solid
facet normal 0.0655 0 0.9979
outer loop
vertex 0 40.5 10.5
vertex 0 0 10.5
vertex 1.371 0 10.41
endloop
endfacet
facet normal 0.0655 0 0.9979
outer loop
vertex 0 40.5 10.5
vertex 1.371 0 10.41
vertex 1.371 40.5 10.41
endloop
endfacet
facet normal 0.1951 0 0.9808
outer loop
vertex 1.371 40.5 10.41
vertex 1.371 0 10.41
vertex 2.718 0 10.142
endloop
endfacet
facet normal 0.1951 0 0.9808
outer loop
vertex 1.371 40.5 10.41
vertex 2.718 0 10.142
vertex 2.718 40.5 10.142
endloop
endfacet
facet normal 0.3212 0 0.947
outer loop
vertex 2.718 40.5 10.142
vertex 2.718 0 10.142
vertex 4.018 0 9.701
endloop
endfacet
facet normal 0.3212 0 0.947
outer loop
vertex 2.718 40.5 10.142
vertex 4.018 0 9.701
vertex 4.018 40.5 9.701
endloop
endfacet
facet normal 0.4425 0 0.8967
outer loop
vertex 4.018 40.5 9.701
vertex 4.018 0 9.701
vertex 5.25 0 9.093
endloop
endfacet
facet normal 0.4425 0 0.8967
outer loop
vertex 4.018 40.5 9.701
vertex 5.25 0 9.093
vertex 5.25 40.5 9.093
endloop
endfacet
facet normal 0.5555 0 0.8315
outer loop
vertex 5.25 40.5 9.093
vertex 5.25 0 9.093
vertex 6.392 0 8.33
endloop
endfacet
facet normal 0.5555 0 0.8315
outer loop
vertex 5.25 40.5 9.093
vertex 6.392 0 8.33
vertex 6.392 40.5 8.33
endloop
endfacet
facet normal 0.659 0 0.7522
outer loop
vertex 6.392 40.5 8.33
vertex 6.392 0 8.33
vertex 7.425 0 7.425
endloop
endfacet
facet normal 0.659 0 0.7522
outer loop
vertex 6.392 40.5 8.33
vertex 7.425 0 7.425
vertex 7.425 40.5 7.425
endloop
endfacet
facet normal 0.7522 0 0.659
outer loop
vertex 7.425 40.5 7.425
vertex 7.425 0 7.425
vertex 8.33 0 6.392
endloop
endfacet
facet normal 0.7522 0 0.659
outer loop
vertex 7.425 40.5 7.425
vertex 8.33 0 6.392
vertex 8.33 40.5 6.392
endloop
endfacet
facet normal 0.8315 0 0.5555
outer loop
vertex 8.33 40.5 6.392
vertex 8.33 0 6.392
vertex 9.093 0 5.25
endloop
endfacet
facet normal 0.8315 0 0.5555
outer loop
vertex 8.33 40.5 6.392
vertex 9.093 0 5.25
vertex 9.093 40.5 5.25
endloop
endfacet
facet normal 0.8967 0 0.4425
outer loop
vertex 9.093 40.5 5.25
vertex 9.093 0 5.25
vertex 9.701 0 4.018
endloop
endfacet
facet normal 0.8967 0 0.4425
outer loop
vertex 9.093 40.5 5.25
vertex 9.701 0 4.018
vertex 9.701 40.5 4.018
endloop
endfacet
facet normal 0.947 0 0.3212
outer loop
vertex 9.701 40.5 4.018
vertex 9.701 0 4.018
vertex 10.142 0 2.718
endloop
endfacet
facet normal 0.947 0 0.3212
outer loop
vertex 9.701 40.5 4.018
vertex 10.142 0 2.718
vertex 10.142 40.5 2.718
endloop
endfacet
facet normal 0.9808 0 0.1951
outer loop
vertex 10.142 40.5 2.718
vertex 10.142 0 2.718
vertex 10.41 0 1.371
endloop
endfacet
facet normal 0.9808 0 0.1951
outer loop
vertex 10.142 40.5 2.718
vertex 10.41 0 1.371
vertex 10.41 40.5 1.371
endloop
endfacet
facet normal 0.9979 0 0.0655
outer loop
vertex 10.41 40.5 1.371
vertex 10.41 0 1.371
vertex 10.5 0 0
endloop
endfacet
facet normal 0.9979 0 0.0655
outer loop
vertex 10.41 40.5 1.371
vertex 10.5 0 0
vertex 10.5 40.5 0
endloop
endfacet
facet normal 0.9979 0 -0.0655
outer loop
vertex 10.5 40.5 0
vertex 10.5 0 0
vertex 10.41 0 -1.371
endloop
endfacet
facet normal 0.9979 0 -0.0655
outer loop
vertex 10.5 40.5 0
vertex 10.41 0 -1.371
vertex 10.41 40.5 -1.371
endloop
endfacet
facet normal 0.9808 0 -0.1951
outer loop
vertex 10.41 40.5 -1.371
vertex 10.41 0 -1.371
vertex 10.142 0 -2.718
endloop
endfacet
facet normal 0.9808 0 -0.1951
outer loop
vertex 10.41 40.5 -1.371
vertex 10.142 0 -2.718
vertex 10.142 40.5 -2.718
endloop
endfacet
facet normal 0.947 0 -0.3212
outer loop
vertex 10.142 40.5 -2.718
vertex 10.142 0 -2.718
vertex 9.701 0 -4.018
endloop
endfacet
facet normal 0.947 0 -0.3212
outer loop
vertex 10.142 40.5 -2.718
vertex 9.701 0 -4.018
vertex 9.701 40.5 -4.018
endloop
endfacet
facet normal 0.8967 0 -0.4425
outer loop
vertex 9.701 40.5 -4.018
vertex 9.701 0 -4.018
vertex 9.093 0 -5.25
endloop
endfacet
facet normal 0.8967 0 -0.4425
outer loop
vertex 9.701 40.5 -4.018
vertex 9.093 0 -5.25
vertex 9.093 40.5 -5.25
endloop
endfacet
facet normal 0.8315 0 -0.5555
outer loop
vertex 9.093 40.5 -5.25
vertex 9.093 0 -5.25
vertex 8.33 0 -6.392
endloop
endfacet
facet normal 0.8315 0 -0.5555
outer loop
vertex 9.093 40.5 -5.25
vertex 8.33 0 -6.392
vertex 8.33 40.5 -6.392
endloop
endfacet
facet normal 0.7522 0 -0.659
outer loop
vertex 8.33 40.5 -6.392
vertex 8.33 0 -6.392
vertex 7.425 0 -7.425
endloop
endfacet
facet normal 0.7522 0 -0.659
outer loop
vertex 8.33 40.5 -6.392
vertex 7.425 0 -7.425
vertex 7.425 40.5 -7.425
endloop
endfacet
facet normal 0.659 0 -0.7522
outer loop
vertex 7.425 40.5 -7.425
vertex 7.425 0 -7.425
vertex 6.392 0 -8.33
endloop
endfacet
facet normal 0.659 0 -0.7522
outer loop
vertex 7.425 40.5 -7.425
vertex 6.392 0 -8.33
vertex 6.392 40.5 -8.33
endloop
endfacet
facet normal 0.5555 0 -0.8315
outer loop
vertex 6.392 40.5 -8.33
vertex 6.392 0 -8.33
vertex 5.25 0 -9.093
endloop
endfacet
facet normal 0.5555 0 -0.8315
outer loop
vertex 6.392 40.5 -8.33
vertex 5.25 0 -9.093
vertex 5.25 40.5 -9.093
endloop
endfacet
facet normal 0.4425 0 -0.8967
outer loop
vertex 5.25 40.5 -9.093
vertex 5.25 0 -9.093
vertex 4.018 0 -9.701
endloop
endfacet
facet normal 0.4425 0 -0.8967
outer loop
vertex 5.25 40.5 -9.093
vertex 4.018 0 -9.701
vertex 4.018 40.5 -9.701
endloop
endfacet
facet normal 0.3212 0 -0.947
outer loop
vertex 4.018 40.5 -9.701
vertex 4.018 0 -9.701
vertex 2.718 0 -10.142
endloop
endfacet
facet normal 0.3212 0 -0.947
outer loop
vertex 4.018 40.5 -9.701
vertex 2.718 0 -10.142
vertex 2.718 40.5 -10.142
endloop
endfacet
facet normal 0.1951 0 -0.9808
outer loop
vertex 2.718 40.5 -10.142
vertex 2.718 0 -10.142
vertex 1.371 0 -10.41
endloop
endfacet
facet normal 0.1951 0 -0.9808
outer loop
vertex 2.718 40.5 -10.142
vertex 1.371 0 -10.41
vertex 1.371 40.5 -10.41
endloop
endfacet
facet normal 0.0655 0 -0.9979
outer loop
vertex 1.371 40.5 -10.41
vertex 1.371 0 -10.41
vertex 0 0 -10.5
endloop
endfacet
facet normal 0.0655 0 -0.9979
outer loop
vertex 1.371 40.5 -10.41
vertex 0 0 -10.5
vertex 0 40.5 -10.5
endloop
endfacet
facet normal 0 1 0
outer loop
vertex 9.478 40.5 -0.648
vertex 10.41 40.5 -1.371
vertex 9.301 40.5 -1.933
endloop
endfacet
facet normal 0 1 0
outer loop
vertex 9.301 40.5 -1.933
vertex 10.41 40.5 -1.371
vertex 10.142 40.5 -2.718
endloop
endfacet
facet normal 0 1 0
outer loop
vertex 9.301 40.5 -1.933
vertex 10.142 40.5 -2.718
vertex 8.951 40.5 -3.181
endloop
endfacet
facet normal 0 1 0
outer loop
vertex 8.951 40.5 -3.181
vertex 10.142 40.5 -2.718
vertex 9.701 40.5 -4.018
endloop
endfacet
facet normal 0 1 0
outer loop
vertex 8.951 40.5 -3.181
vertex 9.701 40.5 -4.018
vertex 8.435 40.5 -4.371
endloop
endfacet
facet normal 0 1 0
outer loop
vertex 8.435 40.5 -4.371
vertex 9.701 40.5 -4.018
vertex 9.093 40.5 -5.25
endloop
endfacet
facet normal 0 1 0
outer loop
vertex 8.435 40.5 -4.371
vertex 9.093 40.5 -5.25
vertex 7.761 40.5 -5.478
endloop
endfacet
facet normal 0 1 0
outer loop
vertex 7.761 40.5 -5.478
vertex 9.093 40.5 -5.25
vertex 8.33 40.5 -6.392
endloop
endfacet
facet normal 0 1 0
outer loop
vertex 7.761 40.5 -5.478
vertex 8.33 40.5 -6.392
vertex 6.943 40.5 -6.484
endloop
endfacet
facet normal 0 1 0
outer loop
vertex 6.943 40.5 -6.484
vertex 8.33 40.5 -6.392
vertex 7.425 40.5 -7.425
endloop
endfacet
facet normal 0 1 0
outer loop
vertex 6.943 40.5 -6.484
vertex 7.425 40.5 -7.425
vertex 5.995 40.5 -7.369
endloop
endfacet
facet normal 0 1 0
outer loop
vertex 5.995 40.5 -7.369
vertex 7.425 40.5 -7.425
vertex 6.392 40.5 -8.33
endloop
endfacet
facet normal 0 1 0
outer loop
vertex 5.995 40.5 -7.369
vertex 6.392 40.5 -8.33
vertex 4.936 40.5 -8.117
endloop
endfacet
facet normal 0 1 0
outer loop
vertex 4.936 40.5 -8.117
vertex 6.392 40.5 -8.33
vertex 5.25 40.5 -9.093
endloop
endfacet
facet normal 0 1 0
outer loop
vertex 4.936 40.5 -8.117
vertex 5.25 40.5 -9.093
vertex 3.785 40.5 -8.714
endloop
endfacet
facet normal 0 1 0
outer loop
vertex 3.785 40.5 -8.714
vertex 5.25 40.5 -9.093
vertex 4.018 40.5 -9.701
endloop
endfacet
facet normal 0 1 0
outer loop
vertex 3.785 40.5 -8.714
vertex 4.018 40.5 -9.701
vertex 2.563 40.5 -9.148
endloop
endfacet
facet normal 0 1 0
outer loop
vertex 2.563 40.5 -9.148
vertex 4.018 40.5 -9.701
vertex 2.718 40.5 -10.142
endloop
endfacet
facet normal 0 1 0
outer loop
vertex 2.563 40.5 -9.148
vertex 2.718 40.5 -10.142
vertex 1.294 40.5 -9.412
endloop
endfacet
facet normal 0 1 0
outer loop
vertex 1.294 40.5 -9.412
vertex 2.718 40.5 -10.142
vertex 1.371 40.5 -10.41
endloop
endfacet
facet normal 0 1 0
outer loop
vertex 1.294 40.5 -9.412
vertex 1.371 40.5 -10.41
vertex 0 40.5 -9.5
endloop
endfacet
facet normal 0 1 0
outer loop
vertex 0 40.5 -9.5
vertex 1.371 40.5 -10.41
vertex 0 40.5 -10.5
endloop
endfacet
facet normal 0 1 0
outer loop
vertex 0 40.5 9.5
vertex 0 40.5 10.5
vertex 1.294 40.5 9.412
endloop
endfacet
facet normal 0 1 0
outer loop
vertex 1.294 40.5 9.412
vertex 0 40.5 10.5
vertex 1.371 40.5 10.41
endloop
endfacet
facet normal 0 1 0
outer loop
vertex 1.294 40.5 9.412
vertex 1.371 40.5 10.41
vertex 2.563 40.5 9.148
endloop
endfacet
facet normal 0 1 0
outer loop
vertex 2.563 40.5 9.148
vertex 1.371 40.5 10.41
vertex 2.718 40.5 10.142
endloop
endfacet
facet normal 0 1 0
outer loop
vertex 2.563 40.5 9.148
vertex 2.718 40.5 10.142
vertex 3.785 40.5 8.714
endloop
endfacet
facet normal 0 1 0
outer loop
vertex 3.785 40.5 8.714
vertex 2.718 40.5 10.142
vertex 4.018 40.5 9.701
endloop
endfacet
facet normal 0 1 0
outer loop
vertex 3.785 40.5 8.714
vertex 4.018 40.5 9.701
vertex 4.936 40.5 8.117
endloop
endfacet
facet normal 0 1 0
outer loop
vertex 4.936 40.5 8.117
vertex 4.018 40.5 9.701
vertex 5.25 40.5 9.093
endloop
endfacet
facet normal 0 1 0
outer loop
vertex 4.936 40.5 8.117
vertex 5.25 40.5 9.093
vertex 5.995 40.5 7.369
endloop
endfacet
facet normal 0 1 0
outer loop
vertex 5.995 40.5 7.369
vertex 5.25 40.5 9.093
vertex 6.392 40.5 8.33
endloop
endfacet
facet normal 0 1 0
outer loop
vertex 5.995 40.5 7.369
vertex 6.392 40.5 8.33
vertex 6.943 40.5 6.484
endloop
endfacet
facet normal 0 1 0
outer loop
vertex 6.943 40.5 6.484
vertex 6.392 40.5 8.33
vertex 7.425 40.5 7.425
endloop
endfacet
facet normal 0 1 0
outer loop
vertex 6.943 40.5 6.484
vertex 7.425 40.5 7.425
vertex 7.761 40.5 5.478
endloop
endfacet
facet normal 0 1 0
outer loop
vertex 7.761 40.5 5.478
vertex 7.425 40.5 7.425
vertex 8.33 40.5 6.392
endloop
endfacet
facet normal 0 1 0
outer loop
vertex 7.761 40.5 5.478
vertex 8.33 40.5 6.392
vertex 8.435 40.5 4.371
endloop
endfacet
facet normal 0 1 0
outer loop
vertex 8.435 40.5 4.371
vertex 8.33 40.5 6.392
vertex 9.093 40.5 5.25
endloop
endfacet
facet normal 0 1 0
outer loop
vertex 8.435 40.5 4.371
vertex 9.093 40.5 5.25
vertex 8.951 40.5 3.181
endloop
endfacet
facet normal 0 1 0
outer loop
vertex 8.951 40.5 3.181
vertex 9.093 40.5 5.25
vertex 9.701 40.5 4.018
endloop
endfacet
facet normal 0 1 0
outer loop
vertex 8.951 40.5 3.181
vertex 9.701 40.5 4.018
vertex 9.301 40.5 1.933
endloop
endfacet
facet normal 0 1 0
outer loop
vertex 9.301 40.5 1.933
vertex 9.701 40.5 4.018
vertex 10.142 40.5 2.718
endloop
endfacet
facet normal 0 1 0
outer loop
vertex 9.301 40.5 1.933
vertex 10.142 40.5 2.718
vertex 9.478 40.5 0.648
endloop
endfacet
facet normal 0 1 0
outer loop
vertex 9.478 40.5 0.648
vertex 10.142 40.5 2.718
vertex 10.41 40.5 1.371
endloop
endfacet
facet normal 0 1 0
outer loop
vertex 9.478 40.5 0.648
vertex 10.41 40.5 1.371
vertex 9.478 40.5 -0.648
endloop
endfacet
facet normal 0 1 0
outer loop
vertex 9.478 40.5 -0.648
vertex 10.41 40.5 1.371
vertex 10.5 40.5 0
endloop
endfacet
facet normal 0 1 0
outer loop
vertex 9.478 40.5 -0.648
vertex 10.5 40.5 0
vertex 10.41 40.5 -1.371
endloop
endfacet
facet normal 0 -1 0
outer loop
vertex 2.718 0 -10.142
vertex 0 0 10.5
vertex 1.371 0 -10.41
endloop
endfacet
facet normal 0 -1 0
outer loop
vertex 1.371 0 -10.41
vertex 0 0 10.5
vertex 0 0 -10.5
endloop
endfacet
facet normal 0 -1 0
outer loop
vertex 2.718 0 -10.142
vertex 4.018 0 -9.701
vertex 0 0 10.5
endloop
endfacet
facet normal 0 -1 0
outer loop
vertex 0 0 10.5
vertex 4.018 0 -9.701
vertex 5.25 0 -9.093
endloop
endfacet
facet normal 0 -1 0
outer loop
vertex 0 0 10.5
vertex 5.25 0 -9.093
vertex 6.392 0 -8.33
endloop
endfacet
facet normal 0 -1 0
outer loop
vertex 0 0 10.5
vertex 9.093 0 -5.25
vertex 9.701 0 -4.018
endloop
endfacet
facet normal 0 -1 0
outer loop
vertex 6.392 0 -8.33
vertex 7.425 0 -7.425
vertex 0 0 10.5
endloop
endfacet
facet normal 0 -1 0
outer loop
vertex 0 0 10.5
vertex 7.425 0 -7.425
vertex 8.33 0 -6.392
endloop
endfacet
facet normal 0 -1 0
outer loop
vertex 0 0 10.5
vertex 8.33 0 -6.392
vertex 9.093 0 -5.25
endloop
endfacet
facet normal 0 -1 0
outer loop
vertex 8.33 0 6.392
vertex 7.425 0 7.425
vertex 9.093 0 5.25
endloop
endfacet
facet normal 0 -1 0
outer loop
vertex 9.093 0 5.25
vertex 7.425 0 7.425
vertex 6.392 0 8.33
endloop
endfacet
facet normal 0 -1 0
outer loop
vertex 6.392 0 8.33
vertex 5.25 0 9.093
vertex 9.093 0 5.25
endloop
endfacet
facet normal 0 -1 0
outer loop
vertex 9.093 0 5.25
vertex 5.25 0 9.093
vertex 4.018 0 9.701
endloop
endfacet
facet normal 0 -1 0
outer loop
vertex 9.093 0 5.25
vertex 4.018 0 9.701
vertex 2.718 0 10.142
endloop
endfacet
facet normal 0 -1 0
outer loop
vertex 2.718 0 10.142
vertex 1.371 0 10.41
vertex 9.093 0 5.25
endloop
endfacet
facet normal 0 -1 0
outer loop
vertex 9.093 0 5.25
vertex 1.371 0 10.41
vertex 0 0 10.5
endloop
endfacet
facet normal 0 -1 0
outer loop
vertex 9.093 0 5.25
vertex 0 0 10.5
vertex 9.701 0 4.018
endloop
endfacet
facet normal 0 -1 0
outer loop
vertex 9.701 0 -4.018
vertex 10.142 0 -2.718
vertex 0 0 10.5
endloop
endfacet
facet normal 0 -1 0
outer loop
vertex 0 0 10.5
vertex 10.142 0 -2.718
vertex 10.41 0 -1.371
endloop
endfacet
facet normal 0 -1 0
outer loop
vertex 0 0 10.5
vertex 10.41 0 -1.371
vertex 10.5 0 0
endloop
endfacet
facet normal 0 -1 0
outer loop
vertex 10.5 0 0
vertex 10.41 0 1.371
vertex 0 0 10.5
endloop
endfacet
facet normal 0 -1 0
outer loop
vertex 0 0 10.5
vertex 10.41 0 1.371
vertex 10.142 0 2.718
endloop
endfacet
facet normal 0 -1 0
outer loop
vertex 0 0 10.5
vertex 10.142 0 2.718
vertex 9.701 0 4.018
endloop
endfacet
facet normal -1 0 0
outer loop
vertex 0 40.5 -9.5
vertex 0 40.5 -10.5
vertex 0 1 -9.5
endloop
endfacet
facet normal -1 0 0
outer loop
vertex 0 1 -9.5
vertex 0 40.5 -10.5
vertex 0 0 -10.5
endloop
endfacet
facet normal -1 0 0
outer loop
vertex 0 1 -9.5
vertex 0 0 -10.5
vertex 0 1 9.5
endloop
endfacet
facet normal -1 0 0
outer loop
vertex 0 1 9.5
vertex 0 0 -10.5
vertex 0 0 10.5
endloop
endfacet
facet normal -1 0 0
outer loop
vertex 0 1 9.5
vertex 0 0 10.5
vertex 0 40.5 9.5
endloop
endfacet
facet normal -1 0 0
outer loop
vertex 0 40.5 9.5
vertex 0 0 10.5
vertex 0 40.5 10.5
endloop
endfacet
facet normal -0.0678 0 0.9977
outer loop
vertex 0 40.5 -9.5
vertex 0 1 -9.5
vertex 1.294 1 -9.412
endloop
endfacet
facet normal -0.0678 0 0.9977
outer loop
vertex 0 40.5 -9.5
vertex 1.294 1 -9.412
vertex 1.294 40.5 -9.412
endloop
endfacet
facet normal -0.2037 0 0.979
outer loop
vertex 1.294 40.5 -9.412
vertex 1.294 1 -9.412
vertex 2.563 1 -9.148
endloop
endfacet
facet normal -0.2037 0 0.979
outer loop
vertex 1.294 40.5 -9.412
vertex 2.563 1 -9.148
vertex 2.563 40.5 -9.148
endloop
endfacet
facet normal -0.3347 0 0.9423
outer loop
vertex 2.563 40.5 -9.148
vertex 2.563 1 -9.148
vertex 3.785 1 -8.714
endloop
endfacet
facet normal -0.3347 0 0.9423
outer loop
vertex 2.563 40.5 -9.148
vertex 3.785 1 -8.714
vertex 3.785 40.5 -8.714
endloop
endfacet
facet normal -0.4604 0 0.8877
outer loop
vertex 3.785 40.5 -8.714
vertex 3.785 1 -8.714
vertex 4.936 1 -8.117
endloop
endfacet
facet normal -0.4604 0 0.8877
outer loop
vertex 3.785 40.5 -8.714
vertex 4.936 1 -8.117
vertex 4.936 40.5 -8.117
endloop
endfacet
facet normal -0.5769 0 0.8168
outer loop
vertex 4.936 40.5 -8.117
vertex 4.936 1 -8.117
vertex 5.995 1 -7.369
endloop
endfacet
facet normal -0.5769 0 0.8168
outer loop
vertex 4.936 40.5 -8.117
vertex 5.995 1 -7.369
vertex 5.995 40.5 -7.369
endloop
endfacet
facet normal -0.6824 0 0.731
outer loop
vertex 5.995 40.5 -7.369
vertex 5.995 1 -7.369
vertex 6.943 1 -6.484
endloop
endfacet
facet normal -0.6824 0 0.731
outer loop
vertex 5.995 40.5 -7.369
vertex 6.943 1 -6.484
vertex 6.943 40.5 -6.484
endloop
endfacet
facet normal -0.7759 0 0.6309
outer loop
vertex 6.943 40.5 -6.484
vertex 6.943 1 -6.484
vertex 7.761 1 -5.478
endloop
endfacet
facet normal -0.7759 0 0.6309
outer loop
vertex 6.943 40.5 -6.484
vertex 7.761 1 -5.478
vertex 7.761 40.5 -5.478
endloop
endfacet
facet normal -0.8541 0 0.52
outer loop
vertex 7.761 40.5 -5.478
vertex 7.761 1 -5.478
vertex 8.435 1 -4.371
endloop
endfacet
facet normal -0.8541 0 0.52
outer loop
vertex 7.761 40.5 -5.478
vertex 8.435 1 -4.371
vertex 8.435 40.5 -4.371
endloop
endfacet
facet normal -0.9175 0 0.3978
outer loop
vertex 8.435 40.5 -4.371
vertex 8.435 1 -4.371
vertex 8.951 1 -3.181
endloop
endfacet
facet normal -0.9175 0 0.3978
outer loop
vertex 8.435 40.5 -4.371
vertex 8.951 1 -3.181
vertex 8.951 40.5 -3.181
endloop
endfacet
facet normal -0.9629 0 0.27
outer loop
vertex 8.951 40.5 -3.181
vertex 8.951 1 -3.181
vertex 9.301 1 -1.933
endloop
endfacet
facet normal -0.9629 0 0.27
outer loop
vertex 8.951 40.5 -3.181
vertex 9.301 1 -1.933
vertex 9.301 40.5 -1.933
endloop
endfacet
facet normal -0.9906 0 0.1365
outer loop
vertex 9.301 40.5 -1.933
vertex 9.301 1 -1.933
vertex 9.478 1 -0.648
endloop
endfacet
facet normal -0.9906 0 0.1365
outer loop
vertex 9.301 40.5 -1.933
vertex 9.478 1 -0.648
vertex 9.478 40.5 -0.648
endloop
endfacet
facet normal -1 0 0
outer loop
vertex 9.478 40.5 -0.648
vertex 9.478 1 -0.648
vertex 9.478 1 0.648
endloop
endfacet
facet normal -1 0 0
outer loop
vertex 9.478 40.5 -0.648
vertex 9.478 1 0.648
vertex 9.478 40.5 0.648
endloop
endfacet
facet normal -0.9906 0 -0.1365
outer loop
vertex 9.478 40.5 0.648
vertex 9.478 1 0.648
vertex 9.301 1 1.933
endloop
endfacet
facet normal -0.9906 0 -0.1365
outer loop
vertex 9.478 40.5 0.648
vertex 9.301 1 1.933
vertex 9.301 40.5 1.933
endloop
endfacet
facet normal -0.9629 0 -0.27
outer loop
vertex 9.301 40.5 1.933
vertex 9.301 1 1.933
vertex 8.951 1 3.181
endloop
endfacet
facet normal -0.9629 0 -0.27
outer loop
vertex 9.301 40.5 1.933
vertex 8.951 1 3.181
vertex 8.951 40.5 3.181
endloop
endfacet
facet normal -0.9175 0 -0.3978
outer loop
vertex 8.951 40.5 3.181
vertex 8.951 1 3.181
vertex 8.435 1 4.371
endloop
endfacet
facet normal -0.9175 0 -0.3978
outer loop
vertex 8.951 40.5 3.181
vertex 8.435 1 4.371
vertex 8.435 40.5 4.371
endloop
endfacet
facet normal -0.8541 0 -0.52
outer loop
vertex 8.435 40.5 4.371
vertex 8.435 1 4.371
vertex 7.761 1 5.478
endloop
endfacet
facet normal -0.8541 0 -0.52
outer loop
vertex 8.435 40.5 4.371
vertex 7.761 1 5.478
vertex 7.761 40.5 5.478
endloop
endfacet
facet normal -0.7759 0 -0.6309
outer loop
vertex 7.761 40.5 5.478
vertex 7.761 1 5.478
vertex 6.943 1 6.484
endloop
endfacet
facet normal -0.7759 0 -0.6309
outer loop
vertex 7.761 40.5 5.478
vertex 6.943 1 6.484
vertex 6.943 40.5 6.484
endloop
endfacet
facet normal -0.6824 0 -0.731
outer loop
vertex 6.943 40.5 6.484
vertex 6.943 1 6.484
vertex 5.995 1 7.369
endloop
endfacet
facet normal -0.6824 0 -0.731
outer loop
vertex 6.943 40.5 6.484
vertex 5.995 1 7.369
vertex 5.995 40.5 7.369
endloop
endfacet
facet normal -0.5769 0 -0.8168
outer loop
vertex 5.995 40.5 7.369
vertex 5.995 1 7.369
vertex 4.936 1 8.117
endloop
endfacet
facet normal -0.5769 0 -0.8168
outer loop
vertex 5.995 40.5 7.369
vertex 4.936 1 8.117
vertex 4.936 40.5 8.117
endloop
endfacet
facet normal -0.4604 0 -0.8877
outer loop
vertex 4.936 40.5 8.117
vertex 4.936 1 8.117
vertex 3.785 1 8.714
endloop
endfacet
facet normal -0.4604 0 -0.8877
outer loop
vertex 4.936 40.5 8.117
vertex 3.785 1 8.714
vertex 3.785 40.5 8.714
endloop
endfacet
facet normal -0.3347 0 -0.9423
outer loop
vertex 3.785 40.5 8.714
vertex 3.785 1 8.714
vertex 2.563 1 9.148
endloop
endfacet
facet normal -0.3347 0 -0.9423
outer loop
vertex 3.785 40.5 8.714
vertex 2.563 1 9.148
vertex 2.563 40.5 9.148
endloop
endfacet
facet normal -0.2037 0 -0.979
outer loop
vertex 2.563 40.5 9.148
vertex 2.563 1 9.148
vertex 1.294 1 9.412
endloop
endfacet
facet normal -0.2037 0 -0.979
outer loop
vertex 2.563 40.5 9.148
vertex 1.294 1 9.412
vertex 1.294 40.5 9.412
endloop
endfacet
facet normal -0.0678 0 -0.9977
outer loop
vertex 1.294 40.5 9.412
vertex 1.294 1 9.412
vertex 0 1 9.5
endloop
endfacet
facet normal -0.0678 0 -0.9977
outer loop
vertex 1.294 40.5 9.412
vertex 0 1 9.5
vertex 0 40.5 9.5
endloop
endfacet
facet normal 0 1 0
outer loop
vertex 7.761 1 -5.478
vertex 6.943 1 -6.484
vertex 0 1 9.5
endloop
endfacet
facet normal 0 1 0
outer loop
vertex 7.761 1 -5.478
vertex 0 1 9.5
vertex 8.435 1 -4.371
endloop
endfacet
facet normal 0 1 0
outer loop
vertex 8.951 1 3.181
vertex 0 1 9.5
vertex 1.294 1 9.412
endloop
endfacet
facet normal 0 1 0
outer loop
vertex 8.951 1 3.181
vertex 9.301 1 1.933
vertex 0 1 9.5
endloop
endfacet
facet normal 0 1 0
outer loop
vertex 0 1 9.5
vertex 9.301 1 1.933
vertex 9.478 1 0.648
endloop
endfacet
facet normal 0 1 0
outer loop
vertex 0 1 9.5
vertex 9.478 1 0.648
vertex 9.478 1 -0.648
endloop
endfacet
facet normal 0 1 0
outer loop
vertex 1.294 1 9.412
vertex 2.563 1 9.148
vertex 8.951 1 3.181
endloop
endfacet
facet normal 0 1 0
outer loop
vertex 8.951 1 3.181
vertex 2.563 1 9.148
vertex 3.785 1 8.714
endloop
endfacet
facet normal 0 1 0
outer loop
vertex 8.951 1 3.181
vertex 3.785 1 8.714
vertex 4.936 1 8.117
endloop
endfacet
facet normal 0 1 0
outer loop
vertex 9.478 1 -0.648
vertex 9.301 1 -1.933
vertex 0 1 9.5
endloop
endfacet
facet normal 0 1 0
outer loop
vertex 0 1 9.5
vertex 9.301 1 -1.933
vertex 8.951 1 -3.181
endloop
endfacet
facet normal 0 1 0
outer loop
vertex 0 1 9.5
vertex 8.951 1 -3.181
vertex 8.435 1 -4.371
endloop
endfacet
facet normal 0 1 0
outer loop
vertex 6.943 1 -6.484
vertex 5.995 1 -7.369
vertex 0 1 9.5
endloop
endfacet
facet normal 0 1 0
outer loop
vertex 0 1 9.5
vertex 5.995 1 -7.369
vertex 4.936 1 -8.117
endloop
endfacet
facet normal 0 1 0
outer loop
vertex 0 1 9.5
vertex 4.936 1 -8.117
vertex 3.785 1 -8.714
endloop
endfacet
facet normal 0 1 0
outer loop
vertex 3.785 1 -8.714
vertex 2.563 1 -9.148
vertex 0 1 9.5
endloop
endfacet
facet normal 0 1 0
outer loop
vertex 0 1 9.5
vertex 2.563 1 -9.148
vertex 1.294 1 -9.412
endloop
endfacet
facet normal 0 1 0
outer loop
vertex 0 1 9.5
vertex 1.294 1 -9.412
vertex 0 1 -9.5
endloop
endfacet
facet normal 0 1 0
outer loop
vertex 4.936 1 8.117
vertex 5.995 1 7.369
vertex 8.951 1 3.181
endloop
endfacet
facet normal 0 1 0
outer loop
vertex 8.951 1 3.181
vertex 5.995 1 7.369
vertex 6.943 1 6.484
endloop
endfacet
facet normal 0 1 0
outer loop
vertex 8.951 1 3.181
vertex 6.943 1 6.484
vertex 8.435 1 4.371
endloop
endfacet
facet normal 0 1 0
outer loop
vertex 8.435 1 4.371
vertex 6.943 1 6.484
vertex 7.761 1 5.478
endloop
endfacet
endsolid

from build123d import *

# Parameters (mm, degrees)
SKETCH1_R           = 10.5
BOSS_EXTRUDE1_DEPTH = 40.5
SKETCH2_W           = 41.275373403
SKETCH2_H           = 50.56233242
CUT_EXTRUDE1_DEPTH  = 40.5
SHELL3_T            = -1


with BuildPart() as part:
    # Sketch1 → Boss-Extrude1 (new body)
    with BuildSketch(Plane(origin=(0, 0, 0), x_dir=(1, 0, 0), z_dir=(0, 1, 0))):
        with Locations(Location((0, 0, 0), (0, 0, 270))):
            Circle(SKETCH1_R)
    extrude(amount=BOSS_EXTRUDE1_DEPTH)

    # Sketch2 → Cut-Extrude1 (cut)
    with BuildSketch(Plane(origin=(0, 0, 0), x_dir=(0, 0, -1), z_dir=(1, 0, 0))):
        with Locations((2.800828909, 23.566771077)):
            Rectangle(SKETCH2_W, SKETCH2_H)
    extrude(amount=-CUT_EXTRUDE1_DEPTH, mode=Mode.SUBTRACT)

    # Shell3
    shell3_openings = [part.faces().sort_by_distance(p)[0] for p in [
        (4.456338407, 40.5, 0),
        (0, 20.25, 0),
    ]]
    offset(amount=SHELL3_T, openings=shell3_openings)


solid = part.part
